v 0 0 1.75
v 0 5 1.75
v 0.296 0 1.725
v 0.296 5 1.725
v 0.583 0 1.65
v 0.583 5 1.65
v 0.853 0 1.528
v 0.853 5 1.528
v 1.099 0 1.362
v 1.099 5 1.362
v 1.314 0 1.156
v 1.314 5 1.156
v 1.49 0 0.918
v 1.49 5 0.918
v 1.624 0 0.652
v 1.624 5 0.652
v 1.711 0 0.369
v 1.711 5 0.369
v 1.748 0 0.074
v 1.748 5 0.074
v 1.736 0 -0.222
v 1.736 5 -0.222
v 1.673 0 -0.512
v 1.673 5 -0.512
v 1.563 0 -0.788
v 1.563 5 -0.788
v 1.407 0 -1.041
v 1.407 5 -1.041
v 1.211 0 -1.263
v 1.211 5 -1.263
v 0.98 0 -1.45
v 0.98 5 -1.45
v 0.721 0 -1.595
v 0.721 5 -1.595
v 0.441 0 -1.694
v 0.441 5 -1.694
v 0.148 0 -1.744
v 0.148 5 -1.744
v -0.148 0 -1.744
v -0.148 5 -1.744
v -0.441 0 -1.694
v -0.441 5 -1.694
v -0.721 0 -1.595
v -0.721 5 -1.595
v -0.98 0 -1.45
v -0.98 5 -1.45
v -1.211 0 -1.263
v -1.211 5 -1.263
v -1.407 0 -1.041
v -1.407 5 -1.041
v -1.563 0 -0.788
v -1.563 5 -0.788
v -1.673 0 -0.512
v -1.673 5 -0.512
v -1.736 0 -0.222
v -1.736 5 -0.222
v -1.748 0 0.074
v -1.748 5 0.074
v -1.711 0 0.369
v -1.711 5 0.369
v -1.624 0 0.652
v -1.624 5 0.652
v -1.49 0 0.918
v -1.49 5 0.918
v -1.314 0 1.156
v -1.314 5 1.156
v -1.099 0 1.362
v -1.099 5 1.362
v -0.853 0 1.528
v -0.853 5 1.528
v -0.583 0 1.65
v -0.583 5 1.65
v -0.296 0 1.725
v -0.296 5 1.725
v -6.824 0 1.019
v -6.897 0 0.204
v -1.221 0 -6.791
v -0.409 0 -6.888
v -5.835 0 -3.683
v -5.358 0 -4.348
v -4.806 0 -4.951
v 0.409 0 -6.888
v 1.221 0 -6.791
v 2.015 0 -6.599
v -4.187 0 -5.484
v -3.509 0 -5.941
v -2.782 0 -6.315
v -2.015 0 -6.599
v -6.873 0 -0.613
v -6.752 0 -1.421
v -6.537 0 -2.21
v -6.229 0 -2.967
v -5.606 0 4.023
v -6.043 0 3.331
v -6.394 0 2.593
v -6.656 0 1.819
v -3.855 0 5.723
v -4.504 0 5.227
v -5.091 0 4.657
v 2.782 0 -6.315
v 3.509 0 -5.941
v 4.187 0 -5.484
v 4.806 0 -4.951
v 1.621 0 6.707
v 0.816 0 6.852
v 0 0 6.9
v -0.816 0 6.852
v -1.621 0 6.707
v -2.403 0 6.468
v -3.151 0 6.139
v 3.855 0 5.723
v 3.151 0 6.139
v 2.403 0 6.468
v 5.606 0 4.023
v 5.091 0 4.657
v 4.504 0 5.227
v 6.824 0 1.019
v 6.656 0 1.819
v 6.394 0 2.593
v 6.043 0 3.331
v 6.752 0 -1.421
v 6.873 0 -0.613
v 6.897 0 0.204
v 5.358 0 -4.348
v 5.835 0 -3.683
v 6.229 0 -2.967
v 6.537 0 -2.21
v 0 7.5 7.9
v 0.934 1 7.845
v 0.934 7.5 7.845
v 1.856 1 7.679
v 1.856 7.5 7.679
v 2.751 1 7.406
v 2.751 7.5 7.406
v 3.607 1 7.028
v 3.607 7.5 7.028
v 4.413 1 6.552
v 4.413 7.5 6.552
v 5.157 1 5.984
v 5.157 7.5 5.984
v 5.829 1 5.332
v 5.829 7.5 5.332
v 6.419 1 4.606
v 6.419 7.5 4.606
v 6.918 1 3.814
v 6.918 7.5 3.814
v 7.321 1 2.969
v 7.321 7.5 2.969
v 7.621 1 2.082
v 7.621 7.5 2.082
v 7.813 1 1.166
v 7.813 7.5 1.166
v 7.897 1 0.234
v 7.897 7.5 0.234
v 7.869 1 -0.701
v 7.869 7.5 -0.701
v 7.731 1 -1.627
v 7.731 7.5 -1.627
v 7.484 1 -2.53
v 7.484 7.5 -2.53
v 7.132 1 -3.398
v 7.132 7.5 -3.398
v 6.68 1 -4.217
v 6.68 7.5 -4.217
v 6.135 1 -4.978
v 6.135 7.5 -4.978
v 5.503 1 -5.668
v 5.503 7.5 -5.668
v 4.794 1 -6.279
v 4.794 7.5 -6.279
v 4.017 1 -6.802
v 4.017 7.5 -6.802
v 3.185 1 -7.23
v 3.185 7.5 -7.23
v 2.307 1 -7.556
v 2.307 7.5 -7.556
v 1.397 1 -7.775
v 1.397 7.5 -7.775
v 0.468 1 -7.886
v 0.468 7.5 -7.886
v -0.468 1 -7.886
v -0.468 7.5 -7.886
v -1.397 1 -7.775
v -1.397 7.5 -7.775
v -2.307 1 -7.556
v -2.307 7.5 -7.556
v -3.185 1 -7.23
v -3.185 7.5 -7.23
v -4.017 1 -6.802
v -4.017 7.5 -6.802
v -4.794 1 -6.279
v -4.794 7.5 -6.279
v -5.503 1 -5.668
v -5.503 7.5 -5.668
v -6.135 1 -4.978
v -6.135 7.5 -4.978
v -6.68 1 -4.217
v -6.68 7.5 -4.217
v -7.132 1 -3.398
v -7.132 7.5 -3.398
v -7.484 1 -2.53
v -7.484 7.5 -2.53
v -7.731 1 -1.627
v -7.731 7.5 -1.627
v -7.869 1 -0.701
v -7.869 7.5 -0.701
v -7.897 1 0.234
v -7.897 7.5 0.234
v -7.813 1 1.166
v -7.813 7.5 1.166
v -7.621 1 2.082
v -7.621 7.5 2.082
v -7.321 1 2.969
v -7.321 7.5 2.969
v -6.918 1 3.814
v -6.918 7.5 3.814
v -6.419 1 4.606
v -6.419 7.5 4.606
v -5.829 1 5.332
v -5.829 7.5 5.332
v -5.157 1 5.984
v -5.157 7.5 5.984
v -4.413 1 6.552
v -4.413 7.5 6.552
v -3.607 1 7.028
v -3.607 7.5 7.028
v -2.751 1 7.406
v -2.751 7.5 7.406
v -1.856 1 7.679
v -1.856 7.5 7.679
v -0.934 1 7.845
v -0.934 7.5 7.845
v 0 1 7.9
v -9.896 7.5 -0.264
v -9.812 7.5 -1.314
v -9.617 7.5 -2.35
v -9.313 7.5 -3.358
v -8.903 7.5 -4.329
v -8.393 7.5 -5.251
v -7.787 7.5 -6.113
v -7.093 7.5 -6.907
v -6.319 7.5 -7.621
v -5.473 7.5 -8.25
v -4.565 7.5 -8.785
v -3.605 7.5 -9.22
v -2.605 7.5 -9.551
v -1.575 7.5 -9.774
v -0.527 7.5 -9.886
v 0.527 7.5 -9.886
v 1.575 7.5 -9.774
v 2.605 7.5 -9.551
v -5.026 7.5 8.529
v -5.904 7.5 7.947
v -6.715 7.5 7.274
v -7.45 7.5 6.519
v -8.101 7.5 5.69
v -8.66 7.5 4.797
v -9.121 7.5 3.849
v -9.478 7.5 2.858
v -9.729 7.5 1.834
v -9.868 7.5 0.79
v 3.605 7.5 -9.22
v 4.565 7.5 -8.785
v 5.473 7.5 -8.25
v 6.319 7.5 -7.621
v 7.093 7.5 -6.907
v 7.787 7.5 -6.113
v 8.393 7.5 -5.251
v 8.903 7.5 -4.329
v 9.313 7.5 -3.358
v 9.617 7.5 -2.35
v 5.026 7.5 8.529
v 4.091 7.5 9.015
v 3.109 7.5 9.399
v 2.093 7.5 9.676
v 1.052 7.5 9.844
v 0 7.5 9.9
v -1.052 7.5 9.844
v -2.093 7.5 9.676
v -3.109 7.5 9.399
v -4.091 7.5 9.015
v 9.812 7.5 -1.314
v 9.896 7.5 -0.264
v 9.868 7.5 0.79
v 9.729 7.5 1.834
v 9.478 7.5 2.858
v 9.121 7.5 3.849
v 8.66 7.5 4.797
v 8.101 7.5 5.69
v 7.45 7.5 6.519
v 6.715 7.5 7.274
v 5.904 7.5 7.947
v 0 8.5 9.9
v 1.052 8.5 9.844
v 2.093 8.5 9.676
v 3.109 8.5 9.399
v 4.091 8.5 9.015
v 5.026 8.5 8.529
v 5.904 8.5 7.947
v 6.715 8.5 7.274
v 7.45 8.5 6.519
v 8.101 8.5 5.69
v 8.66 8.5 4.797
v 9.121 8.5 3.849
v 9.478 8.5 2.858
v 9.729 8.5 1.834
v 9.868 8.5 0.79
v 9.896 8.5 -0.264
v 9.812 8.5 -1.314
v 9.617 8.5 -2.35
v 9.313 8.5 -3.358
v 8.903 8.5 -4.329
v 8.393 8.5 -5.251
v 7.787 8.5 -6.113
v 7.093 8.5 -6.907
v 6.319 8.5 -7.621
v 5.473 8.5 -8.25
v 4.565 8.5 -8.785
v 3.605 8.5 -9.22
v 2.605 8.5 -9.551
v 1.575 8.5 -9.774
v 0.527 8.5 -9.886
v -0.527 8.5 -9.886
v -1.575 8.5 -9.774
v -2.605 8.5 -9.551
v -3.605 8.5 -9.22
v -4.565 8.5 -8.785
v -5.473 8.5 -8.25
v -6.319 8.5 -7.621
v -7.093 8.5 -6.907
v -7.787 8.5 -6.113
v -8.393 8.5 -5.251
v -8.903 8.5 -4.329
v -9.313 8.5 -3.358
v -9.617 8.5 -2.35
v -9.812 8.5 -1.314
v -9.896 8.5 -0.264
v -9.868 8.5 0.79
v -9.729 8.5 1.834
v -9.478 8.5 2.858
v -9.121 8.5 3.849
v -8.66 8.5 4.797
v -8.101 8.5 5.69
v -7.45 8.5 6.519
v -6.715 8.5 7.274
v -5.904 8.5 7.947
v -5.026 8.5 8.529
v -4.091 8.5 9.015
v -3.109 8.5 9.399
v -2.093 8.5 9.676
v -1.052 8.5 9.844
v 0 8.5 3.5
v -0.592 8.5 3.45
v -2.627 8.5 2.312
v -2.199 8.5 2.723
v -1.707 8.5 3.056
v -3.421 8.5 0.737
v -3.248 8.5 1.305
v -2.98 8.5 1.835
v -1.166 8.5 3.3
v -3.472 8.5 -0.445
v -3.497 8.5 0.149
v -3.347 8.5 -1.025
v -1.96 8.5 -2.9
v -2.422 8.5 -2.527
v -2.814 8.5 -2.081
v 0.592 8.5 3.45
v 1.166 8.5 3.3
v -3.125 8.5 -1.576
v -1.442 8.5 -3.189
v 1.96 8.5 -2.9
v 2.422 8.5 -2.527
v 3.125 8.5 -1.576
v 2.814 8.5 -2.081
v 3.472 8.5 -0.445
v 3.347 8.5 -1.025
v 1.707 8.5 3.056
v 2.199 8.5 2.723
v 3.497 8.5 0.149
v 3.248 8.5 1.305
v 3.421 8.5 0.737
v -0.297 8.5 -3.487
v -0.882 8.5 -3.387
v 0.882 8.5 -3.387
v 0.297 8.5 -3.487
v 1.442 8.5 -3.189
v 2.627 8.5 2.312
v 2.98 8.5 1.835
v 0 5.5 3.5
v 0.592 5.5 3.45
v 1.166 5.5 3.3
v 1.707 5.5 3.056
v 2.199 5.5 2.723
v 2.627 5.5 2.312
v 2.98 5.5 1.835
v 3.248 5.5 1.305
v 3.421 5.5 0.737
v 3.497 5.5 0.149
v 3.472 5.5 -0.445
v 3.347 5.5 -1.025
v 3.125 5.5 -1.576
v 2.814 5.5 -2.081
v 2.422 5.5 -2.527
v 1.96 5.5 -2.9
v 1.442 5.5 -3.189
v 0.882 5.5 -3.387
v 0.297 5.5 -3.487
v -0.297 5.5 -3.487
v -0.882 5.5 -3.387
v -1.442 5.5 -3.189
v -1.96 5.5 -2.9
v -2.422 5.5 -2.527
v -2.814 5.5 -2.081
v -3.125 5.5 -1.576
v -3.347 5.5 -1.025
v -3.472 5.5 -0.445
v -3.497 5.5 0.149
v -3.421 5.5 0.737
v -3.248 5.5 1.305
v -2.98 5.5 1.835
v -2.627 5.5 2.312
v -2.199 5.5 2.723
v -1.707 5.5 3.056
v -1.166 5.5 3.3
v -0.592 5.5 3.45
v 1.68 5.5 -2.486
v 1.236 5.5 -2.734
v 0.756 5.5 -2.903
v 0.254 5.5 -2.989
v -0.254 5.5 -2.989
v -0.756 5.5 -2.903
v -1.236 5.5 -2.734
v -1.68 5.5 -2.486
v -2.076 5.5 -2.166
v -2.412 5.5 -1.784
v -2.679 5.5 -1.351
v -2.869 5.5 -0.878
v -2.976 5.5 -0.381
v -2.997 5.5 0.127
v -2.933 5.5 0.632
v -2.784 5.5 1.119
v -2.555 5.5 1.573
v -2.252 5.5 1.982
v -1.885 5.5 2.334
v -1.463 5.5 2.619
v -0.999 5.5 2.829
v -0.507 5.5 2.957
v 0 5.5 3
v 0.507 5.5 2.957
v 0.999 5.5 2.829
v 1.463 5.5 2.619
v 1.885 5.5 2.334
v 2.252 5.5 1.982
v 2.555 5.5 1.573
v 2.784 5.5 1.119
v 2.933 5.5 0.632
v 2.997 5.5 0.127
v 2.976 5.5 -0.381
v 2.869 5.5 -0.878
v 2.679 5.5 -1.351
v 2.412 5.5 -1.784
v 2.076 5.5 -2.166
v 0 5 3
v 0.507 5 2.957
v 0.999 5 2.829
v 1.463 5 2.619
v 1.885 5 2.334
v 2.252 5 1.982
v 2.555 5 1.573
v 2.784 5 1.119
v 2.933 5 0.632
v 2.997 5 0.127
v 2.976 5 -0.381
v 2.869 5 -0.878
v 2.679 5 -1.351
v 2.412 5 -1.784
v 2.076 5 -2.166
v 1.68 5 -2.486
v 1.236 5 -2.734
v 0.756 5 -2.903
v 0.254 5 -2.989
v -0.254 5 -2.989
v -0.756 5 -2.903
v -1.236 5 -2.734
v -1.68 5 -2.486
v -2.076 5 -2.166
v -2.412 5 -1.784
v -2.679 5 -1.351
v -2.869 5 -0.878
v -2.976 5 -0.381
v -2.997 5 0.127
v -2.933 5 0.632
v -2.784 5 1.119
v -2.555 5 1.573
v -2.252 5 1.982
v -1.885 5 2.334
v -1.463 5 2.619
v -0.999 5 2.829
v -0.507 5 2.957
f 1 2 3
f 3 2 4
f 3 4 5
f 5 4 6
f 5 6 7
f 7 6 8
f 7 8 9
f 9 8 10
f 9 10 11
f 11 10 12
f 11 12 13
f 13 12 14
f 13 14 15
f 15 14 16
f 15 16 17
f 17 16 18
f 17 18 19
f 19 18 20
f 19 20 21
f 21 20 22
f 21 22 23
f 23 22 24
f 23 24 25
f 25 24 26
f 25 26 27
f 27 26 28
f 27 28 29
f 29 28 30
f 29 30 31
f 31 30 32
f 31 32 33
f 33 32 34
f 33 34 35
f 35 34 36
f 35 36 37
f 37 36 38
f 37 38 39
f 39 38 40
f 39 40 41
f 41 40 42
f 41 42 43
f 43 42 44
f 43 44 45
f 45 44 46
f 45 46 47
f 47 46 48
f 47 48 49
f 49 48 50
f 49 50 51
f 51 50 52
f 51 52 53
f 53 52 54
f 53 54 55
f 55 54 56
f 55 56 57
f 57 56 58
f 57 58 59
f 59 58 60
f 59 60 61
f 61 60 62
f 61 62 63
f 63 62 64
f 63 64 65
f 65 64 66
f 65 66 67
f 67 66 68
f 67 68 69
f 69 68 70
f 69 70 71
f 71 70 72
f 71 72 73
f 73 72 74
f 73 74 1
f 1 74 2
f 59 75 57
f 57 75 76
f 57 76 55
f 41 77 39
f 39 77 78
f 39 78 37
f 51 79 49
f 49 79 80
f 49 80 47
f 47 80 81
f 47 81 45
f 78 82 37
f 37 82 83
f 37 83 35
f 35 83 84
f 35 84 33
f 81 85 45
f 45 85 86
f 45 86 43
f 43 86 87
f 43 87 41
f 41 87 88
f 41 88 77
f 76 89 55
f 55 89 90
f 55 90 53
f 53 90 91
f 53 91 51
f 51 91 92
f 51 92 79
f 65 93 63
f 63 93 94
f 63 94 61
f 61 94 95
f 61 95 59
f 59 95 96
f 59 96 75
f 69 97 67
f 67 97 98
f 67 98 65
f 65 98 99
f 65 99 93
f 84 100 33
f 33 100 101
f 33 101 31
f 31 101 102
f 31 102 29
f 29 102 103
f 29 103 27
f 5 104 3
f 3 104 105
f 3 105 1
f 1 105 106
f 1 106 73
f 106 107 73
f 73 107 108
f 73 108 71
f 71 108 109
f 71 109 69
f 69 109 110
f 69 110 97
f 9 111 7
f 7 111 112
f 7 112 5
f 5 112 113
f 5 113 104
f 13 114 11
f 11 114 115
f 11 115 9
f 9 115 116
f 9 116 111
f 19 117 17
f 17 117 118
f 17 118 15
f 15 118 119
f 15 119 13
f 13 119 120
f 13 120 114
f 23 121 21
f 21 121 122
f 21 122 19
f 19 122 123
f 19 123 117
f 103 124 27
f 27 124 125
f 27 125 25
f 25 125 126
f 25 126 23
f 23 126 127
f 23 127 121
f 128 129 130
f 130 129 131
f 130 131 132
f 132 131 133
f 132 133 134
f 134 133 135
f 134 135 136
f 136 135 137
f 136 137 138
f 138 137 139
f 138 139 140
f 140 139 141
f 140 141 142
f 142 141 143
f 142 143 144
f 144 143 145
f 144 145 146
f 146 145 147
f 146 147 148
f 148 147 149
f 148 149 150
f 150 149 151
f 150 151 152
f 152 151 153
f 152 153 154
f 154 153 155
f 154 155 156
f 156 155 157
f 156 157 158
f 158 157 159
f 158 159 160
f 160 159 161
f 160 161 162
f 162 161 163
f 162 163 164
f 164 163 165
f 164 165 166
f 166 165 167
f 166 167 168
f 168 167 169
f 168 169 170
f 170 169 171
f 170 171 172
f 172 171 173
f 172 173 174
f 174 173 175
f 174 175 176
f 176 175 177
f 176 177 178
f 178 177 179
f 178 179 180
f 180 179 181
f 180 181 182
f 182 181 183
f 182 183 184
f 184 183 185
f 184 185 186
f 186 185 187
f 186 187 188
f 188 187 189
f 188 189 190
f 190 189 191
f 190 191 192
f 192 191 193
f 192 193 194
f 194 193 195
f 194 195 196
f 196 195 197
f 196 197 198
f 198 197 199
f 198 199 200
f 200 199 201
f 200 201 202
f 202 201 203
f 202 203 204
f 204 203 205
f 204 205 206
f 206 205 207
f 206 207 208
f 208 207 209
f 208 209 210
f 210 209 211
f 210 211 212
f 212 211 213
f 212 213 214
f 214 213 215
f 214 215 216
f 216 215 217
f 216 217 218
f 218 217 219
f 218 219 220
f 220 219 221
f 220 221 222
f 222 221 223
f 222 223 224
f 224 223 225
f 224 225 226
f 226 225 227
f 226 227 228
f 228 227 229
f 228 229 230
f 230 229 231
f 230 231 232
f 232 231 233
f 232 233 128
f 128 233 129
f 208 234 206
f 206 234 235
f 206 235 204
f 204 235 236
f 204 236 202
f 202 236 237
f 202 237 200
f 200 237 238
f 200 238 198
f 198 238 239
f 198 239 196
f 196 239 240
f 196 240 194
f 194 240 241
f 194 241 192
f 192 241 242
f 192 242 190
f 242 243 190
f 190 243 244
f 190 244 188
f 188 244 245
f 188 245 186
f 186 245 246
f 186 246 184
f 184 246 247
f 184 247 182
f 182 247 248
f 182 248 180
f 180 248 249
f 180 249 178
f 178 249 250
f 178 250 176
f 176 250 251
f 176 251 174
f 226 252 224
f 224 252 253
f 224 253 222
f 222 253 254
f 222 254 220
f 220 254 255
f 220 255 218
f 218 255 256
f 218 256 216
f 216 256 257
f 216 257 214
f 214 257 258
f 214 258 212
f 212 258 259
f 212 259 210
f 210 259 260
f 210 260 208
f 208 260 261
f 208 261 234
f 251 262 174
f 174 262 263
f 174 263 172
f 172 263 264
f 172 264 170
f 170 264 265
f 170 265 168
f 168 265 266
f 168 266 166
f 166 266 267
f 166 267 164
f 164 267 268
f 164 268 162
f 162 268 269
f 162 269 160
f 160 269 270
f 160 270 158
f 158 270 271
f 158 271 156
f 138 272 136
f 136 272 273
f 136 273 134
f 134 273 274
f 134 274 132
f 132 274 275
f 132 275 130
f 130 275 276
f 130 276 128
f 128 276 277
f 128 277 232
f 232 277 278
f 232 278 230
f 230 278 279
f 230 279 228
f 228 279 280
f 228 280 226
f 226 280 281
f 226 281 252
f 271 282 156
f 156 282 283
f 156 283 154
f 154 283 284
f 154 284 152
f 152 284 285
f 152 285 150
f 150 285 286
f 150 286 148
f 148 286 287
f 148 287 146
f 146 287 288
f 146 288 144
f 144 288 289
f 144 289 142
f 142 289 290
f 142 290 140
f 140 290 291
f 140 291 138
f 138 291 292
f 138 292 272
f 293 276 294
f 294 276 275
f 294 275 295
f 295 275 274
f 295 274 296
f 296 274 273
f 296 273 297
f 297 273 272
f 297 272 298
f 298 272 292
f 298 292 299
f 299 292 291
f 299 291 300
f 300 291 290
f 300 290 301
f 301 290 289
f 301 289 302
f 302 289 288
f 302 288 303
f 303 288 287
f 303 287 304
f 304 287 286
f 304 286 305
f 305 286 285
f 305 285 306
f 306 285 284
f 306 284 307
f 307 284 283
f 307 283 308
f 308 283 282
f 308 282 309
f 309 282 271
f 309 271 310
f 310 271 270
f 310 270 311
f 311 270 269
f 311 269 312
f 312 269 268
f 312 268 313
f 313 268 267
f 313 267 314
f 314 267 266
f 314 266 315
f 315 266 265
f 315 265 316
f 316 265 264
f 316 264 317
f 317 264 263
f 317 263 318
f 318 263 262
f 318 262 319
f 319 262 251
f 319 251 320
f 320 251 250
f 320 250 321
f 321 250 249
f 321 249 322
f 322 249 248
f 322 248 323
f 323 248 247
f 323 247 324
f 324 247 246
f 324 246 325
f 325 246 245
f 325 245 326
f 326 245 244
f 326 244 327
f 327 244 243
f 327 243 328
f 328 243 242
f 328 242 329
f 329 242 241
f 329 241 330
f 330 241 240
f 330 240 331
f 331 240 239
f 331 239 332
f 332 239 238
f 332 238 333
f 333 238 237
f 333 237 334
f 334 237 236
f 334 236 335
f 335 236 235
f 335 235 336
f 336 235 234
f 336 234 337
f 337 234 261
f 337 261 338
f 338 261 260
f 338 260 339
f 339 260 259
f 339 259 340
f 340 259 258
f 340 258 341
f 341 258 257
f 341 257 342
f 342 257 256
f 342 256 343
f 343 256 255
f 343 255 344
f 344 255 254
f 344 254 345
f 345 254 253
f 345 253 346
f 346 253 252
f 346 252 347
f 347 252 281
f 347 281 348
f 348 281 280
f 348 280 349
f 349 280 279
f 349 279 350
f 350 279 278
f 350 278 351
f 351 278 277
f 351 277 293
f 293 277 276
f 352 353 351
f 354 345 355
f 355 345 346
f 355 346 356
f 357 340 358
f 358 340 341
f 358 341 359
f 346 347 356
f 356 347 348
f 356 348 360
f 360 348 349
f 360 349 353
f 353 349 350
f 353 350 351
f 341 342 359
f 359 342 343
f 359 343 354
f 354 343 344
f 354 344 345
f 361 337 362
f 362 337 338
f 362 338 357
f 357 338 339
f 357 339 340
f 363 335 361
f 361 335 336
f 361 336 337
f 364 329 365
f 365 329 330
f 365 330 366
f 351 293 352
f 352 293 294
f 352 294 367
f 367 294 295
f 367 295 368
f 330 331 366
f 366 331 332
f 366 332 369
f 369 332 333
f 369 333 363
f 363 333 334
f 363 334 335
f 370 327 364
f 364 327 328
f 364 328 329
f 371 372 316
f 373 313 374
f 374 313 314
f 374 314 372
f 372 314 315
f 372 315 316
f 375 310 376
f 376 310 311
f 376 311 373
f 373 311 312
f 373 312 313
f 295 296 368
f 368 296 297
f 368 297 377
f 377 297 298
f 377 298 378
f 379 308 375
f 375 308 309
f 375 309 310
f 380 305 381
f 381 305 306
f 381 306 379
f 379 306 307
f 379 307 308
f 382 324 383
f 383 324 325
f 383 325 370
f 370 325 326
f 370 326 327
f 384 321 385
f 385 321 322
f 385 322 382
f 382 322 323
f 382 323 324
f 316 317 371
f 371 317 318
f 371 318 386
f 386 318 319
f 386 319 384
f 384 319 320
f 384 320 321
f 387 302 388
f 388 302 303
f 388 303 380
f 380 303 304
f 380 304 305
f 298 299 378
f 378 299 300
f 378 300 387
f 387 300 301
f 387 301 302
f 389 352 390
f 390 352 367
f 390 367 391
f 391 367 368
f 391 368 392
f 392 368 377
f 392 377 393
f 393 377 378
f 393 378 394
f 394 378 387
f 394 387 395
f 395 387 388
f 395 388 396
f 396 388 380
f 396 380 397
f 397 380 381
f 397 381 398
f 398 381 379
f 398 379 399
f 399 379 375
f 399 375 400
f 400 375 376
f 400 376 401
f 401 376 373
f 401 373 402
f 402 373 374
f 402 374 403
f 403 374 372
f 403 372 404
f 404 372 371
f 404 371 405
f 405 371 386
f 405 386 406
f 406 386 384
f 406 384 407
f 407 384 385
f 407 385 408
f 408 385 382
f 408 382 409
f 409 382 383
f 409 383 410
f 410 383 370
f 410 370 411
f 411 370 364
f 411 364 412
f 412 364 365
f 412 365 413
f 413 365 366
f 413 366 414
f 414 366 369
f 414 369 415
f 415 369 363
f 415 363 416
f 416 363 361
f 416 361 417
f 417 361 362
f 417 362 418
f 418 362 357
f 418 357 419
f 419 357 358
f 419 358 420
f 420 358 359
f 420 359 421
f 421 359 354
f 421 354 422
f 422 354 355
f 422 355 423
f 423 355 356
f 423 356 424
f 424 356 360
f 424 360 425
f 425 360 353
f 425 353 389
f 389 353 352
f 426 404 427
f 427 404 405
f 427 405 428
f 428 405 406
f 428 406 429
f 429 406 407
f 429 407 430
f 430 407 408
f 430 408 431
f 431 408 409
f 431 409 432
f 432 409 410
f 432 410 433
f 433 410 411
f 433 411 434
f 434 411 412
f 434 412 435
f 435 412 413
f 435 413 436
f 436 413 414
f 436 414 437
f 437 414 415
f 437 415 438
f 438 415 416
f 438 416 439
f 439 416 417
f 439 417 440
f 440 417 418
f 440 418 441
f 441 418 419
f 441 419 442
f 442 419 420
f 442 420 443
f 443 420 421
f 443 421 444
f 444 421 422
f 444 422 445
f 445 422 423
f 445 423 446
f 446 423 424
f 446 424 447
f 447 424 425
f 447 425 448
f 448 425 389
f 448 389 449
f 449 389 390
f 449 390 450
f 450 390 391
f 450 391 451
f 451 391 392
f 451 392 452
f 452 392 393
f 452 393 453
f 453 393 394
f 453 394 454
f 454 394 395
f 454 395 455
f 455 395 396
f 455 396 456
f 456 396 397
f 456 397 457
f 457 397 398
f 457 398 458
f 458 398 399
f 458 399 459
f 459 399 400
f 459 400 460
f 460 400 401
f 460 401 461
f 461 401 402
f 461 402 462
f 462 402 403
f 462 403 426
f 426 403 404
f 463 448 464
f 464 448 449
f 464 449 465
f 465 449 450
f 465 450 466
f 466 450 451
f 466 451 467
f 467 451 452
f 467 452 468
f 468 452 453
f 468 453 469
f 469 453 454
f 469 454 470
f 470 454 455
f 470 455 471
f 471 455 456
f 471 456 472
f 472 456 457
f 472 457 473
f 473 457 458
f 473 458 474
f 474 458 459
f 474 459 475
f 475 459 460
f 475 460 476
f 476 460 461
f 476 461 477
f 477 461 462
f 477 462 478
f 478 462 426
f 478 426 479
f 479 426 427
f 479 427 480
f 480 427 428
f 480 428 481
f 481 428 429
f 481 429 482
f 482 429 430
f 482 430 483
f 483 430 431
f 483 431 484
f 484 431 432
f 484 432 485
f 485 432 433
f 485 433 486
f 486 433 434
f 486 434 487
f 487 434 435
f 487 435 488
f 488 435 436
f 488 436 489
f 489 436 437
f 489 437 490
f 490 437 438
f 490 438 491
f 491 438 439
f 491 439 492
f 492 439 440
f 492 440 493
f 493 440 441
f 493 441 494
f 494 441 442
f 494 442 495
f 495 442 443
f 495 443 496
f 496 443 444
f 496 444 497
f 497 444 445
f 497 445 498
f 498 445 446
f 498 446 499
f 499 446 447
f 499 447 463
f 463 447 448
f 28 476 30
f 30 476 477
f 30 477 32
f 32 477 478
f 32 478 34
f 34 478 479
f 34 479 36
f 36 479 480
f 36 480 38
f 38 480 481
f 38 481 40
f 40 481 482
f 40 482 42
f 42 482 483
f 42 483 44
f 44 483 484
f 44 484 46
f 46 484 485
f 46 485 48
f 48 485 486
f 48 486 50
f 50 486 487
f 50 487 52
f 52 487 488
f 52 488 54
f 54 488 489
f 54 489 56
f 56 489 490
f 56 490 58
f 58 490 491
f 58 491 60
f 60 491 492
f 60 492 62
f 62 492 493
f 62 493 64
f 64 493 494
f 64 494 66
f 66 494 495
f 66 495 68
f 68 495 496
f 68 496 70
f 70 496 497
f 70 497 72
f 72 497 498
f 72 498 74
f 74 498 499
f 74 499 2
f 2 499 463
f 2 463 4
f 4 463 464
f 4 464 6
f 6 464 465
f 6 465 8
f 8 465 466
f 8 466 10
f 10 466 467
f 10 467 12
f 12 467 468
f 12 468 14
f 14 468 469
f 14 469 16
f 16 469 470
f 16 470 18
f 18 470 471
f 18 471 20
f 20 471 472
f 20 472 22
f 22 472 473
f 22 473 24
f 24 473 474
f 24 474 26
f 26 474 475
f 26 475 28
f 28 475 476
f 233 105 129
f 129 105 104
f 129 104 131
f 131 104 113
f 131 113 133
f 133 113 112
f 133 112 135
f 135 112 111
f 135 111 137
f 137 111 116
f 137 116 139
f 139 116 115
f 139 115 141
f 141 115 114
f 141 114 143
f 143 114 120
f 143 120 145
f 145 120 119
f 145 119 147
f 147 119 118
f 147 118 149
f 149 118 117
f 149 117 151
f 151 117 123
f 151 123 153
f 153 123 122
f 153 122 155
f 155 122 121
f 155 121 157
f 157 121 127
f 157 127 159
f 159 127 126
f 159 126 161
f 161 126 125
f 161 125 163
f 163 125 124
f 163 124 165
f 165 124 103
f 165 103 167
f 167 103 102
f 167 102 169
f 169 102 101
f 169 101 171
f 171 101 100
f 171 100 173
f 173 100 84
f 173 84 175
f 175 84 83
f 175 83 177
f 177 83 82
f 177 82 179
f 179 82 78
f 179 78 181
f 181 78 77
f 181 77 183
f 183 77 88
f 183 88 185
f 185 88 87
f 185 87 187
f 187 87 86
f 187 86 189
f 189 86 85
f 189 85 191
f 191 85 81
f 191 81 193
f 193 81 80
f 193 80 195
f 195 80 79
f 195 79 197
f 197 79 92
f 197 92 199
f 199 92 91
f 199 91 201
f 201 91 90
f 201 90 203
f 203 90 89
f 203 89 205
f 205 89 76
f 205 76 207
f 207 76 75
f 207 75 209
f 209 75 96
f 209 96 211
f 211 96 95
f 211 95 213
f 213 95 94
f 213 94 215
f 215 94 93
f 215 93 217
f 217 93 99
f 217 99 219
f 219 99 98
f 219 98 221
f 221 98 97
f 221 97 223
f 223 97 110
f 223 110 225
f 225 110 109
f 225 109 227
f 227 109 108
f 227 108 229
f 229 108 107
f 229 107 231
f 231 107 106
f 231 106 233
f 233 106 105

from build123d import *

# Parameters (mm, degrees)
CHAMFER1_SIZE = 1


with BuildPart() as part:
    # Sketch1 → Revolve1 (revolve)
    with BuildSketch(Plane.XY, mode=Mode.PRIVATE) as revolve1_sk:
        Polygon((1.75, 0), (7.9, 0), (7.9, 7.5), (9.9, 7.5), (9.9, 8.5), (3.5, 8.5), (3.5, 5.5), (3, 5.5), (3, 5), (1.75, 5), align=None)
    revolve(revolve1_sk.sketch.rotate(Axis((0, 37.275, 0), (0, -1, 0)), 90), axis=Axis((0, 37.275, 0), (0, -1, 0)))

    # Chamfer1
    chamfer1_edges = [part.edges().sort_by_distance(p)[0] for p in [
        (0, 0, -7.9),
    ]]
    chamfer(chamfer1_edges, length=CHAMFER1_SIZE)


solid = part.part
